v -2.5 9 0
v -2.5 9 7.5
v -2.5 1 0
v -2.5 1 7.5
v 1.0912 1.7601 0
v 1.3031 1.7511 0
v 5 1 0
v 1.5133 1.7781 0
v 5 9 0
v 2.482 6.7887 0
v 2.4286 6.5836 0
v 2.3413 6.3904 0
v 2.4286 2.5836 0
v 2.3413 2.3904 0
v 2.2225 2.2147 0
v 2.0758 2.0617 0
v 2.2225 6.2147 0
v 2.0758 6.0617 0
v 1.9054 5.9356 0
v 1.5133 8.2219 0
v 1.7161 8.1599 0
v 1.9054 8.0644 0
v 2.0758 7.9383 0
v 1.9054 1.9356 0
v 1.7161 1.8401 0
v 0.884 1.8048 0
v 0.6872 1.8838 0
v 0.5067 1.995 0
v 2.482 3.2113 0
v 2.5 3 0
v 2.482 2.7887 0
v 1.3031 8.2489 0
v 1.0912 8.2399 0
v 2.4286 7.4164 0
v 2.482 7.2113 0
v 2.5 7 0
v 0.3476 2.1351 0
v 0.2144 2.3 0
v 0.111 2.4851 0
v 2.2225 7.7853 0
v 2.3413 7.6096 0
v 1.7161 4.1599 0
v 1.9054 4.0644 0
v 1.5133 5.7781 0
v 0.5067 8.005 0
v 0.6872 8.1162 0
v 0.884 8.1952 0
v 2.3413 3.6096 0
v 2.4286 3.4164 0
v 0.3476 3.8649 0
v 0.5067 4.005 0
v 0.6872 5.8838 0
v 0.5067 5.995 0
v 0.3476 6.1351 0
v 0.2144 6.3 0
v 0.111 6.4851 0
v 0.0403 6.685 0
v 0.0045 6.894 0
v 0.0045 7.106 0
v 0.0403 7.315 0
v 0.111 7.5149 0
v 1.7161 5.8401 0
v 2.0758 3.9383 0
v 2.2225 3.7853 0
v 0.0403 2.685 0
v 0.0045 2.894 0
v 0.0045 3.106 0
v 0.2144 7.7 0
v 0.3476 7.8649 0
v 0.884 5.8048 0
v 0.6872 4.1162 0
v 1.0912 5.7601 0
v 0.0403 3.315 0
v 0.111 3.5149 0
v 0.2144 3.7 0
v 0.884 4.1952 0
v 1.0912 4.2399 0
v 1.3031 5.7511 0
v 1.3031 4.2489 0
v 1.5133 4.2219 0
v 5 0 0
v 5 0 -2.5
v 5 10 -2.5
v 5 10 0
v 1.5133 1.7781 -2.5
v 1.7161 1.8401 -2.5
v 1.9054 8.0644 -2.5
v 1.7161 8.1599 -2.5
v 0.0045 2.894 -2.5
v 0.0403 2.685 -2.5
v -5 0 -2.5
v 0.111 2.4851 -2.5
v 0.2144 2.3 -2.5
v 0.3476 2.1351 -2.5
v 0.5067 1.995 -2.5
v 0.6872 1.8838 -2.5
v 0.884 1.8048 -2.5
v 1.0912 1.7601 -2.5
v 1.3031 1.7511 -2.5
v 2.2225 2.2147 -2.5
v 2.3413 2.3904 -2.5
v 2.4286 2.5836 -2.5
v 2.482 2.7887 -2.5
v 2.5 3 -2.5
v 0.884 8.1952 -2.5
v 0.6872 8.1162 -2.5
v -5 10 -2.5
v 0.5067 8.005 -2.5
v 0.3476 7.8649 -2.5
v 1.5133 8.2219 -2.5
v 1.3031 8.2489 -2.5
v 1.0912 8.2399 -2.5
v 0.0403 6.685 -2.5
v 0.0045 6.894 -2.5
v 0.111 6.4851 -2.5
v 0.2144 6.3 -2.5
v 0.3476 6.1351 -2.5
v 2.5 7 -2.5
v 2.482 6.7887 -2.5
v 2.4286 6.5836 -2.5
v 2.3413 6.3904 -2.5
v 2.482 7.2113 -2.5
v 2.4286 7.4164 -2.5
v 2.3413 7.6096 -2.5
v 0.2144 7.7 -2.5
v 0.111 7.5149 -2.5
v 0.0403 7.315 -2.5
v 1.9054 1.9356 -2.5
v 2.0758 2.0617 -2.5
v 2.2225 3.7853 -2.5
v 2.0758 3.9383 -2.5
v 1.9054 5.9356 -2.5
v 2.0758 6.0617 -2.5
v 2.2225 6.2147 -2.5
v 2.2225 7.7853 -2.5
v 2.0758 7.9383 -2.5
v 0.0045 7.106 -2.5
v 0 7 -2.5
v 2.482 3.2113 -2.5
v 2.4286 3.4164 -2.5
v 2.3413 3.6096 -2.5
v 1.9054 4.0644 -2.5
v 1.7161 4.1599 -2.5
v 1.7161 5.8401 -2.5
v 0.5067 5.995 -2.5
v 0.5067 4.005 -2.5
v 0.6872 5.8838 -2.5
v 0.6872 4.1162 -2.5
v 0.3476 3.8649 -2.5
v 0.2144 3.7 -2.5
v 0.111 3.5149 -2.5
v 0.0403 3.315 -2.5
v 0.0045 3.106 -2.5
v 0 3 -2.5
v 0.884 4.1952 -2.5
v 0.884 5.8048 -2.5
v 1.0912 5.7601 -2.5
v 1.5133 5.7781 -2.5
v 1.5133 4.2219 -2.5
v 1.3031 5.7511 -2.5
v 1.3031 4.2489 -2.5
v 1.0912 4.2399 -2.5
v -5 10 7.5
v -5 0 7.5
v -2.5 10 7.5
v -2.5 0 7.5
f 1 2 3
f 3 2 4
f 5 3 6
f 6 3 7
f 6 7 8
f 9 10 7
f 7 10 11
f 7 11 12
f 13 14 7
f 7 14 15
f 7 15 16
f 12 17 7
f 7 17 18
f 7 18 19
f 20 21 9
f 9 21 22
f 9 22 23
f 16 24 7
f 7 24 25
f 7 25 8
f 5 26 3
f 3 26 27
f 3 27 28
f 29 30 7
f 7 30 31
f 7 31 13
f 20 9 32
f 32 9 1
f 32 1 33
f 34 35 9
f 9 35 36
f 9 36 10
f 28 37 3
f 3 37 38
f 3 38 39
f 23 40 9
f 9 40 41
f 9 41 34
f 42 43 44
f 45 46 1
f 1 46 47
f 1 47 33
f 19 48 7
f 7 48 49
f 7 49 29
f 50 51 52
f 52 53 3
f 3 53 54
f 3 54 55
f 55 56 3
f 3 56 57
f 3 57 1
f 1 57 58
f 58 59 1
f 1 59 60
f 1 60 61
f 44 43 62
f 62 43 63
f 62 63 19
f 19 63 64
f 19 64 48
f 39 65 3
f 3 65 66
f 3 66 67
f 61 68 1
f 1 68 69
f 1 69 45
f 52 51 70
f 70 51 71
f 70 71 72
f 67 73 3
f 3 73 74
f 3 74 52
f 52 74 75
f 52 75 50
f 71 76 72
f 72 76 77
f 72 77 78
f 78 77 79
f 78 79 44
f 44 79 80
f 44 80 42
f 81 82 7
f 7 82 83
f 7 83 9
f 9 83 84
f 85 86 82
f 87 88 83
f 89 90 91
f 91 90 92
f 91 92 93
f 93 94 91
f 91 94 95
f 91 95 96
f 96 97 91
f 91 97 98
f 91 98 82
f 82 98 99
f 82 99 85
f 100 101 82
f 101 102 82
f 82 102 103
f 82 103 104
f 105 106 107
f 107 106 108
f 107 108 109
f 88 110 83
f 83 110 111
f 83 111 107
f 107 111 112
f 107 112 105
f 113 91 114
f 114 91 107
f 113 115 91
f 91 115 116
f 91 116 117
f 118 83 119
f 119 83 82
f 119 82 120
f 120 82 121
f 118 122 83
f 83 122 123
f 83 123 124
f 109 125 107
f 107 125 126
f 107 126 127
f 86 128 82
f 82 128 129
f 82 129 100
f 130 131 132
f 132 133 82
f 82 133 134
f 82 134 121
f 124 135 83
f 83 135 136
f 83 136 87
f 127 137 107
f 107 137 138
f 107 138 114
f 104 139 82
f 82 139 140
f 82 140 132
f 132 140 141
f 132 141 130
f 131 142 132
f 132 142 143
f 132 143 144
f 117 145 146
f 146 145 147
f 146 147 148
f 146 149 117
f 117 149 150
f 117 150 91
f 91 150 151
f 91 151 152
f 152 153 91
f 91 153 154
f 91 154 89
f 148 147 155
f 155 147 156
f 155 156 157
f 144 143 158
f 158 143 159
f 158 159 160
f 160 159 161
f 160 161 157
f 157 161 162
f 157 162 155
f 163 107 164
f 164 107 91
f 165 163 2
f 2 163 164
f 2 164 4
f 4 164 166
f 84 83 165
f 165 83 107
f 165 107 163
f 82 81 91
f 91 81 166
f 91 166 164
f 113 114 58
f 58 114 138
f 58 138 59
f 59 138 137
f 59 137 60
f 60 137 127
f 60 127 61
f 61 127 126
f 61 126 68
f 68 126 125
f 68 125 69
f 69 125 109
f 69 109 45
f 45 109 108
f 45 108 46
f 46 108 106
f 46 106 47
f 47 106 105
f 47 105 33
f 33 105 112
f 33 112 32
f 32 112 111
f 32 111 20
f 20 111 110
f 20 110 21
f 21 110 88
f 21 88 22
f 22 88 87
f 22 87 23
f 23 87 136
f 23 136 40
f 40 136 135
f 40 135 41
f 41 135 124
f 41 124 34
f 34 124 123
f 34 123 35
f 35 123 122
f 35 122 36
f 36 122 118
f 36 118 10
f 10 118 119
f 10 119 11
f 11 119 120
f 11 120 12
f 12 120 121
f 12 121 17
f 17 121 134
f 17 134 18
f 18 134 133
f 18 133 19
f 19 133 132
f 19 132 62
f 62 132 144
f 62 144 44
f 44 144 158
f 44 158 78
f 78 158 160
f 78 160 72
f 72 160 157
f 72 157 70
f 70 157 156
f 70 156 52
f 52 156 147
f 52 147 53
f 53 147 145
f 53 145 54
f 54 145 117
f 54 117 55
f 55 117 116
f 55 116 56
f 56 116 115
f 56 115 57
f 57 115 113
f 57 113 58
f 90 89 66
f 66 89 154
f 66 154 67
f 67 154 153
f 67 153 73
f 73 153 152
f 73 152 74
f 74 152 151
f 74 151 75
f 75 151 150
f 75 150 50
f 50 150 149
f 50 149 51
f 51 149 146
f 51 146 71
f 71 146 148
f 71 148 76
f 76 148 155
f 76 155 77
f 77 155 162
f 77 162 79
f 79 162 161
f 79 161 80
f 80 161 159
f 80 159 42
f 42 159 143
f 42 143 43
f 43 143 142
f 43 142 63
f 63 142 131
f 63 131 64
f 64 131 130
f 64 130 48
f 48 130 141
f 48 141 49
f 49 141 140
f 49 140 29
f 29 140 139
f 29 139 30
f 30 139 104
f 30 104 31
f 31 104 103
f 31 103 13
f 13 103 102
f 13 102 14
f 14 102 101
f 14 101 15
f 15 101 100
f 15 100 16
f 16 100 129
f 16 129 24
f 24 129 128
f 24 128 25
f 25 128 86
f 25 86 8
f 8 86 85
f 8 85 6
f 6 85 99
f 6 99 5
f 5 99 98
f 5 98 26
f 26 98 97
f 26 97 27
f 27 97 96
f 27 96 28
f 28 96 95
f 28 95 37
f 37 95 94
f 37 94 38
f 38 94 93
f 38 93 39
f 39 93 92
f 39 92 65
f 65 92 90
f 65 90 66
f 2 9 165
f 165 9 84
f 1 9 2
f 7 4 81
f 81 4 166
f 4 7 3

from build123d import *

# Parameters (mm, degrees)
BOSS_EXTRUDE1_DEPTH = 10
SKETCH3_R           = 1.25
CUT_EXTRUDE1_DEPTH  = 10
BOSS_EXTRUDE2_DEPTH = 1


with BuildPart() as part:
    # Sketch2 → Boss-Extrude1 (new body)
    with BuildSketch(Plane(origin=(0, 0, 0), x_dir=(1, 0, 0), z_dir=(0, 1, 0))):
        Polygon((0, 2.5), (-5, 2.5), (-5, -2.5), (-5, -7.5), (-2.5, -7.5), (-2.5, 0), (5, 0), (5, 2.5), align=None)
    extrude(amount=BOSS_EXTRUDE1_DEPTH)

    # Sketch3 → Cut-Extrude1 (cut)
    with BuildSketch(Plane.XY):
        with Locations((1.25, 7)):
            Circle(SKETCH3_R)
    cut_extrude1 = extrude(amount=-CUT_EXTRUDE1_DEPTH, mode=Mode.SUBTRACT)

    # Mirror1: Cut-Extrude1 across plane
    add(cut_extrude1.mirror(Plane(origin=(0, 5, 0), x_dir=(0, 0, 1), z_dir=(0, -1, 0))), mode=Mode.SUBTRACT)

    # Sketch4 → Boss-Extrude2 (add)
    with BuildSketch(Plane(origin=(0, 10, 0), x_dir=(1, 0, 0), z_dir=(0, 1, 0))):
        Polygon((-2.5, -7.5), (5, 0), (-2.5, 0), align=None)
    boss_extrude2 = extrude(amount=-BOSS_EXTRUDE2_DEPTH)

    # Mirror2: Boss-Extrude2 across plane
    add(boss_extrude2.mirror(Plane(origin=(0, 5, 0), x_dir=(0, 0, 1), z_dir=(0, -1, 0))))


solid = part.part
